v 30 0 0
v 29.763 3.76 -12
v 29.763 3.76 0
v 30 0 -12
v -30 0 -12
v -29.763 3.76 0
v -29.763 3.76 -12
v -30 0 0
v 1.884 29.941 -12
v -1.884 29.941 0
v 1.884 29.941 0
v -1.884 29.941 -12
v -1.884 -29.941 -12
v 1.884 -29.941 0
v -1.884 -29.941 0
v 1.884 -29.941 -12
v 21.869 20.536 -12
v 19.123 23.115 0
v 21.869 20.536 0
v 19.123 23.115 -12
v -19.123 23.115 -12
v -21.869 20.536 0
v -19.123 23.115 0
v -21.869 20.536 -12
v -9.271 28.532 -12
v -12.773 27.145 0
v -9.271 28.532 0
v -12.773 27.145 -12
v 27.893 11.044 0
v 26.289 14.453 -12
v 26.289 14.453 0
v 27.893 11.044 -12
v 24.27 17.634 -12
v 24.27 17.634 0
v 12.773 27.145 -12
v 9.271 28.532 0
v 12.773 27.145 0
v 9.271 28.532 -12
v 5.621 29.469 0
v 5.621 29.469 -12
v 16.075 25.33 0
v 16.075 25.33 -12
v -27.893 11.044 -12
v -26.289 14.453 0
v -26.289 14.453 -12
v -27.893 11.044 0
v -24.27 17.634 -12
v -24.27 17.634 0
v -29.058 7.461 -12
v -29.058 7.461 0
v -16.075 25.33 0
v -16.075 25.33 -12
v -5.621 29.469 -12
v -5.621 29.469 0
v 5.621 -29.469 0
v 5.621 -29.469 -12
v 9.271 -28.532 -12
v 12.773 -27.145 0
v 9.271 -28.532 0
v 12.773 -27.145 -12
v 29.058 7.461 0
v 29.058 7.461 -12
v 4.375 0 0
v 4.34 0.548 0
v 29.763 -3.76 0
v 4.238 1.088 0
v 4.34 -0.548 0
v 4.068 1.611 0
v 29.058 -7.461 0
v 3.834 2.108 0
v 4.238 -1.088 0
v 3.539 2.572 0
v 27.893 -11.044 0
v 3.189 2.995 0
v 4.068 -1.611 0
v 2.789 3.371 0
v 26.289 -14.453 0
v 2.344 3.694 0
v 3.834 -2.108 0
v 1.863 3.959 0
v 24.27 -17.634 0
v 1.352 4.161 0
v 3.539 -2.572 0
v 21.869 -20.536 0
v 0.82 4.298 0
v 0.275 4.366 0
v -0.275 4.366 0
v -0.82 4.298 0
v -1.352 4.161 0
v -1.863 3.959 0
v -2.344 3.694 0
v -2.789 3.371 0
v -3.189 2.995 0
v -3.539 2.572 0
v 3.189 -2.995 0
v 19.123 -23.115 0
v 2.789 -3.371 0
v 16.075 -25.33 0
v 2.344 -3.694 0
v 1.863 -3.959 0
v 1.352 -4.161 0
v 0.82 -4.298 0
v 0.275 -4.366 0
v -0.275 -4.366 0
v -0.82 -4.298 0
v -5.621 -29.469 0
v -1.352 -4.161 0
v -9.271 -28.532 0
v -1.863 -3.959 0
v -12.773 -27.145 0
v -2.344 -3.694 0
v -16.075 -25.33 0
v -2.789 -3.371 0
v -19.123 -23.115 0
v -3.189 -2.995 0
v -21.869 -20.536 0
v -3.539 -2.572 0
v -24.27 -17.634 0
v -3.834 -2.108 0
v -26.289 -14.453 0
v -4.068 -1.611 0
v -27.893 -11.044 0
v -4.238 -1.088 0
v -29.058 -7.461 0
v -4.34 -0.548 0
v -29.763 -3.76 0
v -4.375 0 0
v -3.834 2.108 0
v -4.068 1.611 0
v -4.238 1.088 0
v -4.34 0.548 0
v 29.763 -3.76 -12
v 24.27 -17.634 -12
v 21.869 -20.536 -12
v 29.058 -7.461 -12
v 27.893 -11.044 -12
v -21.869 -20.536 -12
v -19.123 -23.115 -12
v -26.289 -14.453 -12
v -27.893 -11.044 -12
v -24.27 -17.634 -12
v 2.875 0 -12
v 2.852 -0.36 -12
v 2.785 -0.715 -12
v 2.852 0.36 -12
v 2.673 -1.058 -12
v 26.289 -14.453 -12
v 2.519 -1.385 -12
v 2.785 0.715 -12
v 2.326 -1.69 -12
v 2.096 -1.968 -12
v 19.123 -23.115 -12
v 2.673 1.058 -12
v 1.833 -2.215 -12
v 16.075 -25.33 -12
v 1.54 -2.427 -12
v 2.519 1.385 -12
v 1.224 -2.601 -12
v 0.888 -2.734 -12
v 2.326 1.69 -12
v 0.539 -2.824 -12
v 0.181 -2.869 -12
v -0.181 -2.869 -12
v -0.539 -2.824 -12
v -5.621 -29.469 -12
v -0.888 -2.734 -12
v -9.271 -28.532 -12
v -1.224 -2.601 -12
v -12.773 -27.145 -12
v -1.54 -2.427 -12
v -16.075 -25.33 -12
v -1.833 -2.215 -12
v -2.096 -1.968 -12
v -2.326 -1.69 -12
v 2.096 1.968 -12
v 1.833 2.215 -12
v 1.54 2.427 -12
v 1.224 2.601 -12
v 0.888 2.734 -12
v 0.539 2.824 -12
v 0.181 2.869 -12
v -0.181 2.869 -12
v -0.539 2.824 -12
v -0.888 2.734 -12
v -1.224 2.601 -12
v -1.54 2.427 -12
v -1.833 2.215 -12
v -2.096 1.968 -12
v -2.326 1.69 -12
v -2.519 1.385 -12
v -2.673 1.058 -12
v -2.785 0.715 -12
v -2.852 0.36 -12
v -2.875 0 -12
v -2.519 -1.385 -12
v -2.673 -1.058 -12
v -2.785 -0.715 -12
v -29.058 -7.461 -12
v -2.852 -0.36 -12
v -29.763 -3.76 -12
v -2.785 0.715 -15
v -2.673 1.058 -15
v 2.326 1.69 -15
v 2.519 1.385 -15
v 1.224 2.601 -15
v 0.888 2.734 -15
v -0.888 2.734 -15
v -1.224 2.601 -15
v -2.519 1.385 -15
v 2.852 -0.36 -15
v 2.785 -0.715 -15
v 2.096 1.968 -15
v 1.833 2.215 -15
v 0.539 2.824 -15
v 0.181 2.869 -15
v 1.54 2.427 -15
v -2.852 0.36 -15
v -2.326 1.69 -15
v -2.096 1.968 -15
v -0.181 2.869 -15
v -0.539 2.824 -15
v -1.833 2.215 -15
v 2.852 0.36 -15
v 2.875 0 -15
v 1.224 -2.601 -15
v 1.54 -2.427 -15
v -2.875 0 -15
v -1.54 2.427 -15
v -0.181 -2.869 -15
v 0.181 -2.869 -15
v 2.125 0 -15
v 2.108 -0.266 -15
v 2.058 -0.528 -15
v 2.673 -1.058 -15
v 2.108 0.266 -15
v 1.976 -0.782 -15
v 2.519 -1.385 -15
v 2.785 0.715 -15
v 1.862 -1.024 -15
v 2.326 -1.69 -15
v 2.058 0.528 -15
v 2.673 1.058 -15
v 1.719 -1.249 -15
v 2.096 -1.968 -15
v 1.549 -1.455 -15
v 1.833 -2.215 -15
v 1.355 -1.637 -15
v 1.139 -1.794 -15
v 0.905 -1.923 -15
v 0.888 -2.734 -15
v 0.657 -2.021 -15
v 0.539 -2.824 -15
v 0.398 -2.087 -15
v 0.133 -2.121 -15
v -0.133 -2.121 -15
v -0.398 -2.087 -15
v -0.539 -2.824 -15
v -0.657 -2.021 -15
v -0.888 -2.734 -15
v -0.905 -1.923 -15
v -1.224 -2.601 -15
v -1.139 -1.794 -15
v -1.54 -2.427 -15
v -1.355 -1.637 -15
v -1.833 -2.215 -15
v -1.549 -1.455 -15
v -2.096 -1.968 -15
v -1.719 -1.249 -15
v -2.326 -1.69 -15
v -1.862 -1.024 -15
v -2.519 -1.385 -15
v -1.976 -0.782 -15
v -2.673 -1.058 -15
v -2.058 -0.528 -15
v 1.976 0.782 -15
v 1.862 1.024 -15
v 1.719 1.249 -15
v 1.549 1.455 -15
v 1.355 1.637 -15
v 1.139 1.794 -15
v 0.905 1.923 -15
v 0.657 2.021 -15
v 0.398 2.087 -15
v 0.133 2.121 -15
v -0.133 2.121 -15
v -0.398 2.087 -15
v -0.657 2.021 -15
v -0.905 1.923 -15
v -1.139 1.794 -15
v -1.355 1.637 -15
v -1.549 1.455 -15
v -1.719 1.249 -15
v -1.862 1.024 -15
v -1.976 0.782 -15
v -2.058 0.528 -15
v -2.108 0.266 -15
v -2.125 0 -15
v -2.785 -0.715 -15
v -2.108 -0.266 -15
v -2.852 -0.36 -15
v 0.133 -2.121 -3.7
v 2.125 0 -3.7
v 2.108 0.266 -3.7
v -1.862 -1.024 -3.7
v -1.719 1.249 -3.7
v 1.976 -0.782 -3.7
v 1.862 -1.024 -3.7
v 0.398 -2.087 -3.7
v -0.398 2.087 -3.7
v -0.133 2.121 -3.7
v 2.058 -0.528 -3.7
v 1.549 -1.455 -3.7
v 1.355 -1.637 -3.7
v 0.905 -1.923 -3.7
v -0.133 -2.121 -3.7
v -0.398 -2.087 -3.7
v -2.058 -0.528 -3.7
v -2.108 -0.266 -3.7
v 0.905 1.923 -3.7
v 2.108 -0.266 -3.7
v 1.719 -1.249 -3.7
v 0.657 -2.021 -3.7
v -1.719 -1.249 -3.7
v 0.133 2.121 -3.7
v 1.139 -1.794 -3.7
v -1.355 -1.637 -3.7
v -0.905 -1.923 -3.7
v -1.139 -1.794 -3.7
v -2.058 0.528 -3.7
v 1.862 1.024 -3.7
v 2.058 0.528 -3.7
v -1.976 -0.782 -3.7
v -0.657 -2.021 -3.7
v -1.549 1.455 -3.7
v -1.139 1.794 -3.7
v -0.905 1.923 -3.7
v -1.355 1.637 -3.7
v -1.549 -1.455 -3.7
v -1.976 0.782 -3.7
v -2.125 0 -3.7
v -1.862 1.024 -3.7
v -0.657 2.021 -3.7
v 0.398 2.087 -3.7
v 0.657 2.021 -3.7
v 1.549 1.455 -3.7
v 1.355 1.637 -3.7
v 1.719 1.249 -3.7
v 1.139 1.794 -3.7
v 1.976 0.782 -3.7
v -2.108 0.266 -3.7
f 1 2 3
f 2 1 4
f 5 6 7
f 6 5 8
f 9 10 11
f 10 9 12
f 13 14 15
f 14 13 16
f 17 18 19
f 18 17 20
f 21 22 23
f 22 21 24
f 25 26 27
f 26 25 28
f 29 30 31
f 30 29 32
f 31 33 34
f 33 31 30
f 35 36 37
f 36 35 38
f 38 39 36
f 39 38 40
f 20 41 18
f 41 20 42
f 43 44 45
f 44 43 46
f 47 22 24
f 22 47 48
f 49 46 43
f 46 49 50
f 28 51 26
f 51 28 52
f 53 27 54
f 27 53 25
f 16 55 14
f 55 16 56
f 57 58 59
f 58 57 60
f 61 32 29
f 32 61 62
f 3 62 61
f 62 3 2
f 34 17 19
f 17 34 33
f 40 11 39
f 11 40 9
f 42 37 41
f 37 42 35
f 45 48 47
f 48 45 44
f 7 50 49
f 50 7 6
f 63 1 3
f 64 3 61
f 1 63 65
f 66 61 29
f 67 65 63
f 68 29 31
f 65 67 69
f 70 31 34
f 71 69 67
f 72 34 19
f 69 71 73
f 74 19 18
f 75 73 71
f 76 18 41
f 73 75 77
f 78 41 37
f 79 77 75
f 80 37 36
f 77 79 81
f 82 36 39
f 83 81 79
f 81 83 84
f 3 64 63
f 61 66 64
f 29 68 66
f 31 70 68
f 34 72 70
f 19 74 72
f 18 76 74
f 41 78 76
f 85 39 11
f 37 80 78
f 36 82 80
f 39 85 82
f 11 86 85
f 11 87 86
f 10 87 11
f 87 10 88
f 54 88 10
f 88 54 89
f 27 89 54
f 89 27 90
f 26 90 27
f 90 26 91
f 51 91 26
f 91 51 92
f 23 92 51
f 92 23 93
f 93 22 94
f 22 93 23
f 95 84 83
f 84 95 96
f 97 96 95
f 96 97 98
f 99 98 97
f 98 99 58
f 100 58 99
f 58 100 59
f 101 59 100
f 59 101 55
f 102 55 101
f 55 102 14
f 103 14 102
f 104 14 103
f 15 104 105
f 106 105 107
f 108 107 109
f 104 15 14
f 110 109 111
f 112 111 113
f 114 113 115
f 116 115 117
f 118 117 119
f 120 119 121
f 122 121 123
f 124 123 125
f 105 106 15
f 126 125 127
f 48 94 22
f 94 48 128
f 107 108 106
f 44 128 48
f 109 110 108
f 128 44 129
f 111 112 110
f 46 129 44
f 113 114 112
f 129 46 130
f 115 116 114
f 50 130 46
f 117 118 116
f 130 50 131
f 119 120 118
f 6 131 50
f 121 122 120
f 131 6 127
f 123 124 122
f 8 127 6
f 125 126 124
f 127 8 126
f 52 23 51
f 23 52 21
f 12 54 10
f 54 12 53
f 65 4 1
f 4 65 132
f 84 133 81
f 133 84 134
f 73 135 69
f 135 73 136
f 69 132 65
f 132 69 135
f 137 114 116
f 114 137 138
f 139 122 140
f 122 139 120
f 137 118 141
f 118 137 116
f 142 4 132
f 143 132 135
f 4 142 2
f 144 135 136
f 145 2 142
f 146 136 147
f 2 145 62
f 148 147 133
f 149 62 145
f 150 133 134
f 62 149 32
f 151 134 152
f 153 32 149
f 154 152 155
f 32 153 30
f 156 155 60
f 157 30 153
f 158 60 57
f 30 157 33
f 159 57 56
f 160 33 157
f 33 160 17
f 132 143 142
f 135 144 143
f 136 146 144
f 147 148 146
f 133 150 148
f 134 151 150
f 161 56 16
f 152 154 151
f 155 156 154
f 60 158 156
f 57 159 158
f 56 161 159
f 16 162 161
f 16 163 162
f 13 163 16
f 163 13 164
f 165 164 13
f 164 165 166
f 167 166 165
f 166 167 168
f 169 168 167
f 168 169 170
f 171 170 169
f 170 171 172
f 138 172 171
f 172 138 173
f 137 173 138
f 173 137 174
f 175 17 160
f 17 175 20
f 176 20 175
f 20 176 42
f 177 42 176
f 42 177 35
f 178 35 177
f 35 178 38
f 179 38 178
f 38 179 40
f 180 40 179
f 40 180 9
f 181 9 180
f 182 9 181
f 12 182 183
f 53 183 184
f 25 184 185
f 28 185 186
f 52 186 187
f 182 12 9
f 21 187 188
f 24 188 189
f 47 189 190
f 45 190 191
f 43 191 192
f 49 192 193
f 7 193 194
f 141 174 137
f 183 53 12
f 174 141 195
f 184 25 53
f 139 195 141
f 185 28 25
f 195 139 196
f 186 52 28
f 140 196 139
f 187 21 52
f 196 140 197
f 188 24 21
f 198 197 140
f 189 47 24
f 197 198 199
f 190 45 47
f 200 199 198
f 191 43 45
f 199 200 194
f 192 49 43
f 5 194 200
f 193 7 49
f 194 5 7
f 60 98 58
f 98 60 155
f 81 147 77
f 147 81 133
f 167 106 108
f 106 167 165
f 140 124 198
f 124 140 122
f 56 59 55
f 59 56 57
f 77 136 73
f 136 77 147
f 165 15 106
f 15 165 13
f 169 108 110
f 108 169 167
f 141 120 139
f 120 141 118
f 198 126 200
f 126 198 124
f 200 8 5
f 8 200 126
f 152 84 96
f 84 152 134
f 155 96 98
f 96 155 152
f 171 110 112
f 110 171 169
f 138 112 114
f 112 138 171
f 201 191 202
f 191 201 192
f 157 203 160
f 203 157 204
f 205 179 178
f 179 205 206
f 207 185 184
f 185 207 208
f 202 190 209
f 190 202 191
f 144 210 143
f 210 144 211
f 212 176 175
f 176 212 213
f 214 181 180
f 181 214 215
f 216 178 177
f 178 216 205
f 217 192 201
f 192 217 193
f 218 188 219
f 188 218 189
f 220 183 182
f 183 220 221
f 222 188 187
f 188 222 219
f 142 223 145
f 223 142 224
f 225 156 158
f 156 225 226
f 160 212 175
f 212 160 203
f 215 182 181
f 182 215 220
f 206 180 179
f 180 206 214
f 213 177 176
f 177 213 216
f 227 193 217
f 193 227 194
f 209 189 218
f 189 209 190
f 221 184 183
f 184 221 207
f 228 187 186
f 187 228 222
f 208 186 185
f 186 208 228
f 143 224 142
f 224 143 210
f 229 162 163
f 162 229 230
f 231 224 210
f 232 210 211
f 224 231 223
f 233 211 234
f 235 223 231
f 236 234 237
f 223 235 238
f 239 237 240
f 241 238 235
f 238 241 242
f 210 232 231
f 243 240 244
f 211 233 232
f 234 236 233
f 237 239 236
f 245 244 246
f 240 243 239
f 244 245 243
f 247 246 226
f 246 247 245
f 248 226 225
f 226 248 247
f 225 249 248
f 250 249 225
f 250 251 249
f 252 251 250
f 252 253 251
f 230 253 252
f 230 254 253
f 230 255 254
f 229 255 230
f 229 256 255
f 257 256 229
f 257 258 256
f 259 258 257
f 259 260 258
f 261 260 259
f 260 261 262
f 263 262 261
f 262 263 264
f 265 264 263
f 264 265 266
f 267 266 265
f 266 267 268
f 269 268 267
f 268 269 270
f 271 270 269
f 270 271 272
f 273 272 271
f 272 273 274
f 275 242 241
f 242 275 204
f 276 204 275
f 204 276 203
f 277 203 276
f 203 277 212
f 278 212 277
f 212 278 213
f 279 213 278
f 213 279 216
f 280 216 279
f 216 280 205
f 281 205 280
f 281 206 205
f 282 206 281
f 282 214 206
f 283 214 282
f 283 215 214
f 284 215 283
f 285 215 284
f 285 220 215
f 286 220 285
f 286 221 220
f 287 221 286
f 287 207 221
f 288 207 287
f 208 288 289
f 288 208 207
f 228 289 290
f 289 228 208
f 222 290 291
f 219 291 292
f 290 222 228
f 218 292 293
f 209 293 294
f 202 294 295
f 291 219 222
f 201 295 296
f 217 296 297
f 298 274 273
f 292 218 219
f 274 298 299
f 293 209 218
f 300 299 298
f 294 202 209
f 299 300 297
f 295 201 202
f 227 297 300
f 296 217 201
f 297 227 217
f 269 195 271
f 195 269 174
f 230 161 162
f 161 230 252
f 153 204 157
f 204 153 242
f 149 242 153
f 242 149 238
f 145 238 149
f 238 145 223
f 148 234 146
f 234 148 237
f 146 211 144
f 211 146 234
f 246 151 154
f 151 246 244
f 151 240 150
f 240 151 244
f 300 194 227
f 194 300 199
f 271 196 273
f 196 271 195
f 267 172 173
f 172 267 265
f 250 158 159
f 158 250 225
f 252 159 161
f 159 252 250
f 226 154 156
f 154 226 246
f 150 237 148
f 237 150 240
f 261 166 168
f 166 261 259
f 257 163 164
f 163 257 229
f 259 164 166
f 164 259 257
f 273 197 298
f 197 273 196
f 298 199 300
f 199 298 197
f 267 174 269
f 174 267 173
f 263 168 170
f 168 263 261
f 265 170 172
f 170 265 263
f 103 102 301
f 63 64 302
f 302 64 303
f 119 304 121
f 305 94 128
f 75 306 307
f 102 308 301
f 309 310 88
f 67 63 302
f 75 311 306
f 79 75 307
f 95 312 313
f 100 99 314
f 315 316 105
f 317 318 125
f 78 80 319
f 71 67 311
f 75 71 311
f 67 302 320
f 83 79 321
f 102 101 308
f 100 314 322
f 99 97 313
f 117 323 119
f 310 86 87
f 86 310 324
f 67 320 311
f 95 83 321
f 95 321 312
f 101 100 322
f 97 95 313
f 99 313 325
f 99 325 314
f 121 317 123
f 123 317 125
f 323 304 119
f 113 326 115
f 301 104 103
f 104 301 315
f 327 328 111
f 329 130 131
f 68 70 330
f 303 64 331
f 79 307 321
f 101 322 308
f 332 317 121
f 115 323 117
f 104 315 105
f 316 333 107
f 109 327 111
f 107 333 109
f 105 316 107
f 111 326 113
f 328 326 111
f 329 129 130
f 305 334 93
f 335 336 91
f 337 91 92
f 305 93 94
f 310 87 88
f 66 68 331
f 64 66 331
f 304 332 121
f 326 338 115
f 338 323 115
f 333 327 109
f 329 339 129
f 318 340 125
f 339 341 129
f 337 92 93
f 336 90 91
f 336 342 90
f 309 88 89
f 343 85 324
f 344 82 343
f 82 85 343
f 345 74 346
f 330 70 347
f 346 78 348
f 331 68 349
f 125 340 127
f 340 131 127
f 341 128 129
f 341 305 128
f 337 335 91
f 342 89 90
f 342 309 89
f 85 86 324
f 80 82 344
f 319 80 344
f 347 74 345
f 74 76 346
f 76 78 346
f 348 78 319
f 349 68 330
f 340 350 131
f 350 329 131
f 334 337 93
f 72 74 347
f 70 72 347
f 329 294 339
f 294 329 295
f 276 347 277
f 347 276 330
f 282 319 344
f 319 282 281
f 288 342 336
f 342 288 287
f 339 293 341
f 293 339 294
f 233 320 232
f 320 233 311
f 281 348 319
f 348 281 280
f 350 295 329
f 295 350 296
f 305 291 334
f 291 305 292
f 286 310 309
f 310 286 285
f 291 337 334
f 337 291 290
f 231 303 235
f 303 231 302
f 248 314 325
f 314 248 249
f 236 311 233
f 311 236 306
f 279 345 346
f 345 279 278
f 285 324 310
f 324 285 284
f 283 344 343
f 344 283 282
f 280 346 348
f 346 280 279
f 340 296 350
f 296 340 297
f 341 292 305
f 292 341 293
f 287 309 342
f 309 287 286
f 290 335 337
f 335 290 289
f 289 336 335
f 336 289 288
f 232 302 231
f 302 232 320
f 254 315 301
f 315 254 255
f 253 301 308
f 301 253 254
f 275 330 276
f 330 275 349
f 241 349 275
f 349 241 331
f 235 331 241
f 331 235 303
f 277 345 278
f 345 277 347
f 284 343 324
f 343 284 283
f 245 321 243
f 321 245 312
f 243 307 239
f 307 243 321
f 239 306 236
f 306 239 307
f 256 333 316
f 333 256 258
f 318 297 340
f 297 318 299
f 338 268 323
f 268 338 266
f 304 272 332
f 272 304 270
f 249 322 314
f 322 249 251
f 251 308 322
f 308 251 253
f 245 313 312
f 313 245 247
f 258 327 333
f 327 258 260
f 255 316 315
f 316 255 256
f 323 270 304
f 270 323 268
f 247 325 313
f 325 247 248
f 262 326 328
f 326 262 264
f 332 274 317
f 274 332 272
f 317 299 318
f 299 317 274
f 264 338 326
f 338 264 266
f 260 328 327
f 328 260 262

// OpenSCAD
$fn = 50;


difference() {
	union() {
		translate(v = [0, 0, -12.0000000000]) {
			cylinder(h = 12, r = 30.0000000000);
		}
		translate(v = [0, 0, -15.0000000000]) {
			cylinder(h = 15, r = 2.8750000000);
		}
	}
	union() {
		translate(v = [0, 0, 0]) {
			rotate(a = [0, 0, 0]) {
				difference() {
					union() {
						translate(v = [0, 0, -15.0000000000]) {
							cylinder(h = 15, r = 2.0000000000);
						}
						translate(v = [0, 0, -3.7000000000]) {
							cylinder(h = 3.7000000000, r1 = 2.1250000000, r2 = 4.3750000000);
						}
						translate(v = [0, 0, -15.0000000000]) {
							cylinder(h = 15, r = 2.1250000000);
						}
						translate(v = [0, 0, -15.0000000000]) {
							cylinder(h = 15, r = 2.0000000000);
						}
					}
					union();
				}
			}
		}
	}
}
